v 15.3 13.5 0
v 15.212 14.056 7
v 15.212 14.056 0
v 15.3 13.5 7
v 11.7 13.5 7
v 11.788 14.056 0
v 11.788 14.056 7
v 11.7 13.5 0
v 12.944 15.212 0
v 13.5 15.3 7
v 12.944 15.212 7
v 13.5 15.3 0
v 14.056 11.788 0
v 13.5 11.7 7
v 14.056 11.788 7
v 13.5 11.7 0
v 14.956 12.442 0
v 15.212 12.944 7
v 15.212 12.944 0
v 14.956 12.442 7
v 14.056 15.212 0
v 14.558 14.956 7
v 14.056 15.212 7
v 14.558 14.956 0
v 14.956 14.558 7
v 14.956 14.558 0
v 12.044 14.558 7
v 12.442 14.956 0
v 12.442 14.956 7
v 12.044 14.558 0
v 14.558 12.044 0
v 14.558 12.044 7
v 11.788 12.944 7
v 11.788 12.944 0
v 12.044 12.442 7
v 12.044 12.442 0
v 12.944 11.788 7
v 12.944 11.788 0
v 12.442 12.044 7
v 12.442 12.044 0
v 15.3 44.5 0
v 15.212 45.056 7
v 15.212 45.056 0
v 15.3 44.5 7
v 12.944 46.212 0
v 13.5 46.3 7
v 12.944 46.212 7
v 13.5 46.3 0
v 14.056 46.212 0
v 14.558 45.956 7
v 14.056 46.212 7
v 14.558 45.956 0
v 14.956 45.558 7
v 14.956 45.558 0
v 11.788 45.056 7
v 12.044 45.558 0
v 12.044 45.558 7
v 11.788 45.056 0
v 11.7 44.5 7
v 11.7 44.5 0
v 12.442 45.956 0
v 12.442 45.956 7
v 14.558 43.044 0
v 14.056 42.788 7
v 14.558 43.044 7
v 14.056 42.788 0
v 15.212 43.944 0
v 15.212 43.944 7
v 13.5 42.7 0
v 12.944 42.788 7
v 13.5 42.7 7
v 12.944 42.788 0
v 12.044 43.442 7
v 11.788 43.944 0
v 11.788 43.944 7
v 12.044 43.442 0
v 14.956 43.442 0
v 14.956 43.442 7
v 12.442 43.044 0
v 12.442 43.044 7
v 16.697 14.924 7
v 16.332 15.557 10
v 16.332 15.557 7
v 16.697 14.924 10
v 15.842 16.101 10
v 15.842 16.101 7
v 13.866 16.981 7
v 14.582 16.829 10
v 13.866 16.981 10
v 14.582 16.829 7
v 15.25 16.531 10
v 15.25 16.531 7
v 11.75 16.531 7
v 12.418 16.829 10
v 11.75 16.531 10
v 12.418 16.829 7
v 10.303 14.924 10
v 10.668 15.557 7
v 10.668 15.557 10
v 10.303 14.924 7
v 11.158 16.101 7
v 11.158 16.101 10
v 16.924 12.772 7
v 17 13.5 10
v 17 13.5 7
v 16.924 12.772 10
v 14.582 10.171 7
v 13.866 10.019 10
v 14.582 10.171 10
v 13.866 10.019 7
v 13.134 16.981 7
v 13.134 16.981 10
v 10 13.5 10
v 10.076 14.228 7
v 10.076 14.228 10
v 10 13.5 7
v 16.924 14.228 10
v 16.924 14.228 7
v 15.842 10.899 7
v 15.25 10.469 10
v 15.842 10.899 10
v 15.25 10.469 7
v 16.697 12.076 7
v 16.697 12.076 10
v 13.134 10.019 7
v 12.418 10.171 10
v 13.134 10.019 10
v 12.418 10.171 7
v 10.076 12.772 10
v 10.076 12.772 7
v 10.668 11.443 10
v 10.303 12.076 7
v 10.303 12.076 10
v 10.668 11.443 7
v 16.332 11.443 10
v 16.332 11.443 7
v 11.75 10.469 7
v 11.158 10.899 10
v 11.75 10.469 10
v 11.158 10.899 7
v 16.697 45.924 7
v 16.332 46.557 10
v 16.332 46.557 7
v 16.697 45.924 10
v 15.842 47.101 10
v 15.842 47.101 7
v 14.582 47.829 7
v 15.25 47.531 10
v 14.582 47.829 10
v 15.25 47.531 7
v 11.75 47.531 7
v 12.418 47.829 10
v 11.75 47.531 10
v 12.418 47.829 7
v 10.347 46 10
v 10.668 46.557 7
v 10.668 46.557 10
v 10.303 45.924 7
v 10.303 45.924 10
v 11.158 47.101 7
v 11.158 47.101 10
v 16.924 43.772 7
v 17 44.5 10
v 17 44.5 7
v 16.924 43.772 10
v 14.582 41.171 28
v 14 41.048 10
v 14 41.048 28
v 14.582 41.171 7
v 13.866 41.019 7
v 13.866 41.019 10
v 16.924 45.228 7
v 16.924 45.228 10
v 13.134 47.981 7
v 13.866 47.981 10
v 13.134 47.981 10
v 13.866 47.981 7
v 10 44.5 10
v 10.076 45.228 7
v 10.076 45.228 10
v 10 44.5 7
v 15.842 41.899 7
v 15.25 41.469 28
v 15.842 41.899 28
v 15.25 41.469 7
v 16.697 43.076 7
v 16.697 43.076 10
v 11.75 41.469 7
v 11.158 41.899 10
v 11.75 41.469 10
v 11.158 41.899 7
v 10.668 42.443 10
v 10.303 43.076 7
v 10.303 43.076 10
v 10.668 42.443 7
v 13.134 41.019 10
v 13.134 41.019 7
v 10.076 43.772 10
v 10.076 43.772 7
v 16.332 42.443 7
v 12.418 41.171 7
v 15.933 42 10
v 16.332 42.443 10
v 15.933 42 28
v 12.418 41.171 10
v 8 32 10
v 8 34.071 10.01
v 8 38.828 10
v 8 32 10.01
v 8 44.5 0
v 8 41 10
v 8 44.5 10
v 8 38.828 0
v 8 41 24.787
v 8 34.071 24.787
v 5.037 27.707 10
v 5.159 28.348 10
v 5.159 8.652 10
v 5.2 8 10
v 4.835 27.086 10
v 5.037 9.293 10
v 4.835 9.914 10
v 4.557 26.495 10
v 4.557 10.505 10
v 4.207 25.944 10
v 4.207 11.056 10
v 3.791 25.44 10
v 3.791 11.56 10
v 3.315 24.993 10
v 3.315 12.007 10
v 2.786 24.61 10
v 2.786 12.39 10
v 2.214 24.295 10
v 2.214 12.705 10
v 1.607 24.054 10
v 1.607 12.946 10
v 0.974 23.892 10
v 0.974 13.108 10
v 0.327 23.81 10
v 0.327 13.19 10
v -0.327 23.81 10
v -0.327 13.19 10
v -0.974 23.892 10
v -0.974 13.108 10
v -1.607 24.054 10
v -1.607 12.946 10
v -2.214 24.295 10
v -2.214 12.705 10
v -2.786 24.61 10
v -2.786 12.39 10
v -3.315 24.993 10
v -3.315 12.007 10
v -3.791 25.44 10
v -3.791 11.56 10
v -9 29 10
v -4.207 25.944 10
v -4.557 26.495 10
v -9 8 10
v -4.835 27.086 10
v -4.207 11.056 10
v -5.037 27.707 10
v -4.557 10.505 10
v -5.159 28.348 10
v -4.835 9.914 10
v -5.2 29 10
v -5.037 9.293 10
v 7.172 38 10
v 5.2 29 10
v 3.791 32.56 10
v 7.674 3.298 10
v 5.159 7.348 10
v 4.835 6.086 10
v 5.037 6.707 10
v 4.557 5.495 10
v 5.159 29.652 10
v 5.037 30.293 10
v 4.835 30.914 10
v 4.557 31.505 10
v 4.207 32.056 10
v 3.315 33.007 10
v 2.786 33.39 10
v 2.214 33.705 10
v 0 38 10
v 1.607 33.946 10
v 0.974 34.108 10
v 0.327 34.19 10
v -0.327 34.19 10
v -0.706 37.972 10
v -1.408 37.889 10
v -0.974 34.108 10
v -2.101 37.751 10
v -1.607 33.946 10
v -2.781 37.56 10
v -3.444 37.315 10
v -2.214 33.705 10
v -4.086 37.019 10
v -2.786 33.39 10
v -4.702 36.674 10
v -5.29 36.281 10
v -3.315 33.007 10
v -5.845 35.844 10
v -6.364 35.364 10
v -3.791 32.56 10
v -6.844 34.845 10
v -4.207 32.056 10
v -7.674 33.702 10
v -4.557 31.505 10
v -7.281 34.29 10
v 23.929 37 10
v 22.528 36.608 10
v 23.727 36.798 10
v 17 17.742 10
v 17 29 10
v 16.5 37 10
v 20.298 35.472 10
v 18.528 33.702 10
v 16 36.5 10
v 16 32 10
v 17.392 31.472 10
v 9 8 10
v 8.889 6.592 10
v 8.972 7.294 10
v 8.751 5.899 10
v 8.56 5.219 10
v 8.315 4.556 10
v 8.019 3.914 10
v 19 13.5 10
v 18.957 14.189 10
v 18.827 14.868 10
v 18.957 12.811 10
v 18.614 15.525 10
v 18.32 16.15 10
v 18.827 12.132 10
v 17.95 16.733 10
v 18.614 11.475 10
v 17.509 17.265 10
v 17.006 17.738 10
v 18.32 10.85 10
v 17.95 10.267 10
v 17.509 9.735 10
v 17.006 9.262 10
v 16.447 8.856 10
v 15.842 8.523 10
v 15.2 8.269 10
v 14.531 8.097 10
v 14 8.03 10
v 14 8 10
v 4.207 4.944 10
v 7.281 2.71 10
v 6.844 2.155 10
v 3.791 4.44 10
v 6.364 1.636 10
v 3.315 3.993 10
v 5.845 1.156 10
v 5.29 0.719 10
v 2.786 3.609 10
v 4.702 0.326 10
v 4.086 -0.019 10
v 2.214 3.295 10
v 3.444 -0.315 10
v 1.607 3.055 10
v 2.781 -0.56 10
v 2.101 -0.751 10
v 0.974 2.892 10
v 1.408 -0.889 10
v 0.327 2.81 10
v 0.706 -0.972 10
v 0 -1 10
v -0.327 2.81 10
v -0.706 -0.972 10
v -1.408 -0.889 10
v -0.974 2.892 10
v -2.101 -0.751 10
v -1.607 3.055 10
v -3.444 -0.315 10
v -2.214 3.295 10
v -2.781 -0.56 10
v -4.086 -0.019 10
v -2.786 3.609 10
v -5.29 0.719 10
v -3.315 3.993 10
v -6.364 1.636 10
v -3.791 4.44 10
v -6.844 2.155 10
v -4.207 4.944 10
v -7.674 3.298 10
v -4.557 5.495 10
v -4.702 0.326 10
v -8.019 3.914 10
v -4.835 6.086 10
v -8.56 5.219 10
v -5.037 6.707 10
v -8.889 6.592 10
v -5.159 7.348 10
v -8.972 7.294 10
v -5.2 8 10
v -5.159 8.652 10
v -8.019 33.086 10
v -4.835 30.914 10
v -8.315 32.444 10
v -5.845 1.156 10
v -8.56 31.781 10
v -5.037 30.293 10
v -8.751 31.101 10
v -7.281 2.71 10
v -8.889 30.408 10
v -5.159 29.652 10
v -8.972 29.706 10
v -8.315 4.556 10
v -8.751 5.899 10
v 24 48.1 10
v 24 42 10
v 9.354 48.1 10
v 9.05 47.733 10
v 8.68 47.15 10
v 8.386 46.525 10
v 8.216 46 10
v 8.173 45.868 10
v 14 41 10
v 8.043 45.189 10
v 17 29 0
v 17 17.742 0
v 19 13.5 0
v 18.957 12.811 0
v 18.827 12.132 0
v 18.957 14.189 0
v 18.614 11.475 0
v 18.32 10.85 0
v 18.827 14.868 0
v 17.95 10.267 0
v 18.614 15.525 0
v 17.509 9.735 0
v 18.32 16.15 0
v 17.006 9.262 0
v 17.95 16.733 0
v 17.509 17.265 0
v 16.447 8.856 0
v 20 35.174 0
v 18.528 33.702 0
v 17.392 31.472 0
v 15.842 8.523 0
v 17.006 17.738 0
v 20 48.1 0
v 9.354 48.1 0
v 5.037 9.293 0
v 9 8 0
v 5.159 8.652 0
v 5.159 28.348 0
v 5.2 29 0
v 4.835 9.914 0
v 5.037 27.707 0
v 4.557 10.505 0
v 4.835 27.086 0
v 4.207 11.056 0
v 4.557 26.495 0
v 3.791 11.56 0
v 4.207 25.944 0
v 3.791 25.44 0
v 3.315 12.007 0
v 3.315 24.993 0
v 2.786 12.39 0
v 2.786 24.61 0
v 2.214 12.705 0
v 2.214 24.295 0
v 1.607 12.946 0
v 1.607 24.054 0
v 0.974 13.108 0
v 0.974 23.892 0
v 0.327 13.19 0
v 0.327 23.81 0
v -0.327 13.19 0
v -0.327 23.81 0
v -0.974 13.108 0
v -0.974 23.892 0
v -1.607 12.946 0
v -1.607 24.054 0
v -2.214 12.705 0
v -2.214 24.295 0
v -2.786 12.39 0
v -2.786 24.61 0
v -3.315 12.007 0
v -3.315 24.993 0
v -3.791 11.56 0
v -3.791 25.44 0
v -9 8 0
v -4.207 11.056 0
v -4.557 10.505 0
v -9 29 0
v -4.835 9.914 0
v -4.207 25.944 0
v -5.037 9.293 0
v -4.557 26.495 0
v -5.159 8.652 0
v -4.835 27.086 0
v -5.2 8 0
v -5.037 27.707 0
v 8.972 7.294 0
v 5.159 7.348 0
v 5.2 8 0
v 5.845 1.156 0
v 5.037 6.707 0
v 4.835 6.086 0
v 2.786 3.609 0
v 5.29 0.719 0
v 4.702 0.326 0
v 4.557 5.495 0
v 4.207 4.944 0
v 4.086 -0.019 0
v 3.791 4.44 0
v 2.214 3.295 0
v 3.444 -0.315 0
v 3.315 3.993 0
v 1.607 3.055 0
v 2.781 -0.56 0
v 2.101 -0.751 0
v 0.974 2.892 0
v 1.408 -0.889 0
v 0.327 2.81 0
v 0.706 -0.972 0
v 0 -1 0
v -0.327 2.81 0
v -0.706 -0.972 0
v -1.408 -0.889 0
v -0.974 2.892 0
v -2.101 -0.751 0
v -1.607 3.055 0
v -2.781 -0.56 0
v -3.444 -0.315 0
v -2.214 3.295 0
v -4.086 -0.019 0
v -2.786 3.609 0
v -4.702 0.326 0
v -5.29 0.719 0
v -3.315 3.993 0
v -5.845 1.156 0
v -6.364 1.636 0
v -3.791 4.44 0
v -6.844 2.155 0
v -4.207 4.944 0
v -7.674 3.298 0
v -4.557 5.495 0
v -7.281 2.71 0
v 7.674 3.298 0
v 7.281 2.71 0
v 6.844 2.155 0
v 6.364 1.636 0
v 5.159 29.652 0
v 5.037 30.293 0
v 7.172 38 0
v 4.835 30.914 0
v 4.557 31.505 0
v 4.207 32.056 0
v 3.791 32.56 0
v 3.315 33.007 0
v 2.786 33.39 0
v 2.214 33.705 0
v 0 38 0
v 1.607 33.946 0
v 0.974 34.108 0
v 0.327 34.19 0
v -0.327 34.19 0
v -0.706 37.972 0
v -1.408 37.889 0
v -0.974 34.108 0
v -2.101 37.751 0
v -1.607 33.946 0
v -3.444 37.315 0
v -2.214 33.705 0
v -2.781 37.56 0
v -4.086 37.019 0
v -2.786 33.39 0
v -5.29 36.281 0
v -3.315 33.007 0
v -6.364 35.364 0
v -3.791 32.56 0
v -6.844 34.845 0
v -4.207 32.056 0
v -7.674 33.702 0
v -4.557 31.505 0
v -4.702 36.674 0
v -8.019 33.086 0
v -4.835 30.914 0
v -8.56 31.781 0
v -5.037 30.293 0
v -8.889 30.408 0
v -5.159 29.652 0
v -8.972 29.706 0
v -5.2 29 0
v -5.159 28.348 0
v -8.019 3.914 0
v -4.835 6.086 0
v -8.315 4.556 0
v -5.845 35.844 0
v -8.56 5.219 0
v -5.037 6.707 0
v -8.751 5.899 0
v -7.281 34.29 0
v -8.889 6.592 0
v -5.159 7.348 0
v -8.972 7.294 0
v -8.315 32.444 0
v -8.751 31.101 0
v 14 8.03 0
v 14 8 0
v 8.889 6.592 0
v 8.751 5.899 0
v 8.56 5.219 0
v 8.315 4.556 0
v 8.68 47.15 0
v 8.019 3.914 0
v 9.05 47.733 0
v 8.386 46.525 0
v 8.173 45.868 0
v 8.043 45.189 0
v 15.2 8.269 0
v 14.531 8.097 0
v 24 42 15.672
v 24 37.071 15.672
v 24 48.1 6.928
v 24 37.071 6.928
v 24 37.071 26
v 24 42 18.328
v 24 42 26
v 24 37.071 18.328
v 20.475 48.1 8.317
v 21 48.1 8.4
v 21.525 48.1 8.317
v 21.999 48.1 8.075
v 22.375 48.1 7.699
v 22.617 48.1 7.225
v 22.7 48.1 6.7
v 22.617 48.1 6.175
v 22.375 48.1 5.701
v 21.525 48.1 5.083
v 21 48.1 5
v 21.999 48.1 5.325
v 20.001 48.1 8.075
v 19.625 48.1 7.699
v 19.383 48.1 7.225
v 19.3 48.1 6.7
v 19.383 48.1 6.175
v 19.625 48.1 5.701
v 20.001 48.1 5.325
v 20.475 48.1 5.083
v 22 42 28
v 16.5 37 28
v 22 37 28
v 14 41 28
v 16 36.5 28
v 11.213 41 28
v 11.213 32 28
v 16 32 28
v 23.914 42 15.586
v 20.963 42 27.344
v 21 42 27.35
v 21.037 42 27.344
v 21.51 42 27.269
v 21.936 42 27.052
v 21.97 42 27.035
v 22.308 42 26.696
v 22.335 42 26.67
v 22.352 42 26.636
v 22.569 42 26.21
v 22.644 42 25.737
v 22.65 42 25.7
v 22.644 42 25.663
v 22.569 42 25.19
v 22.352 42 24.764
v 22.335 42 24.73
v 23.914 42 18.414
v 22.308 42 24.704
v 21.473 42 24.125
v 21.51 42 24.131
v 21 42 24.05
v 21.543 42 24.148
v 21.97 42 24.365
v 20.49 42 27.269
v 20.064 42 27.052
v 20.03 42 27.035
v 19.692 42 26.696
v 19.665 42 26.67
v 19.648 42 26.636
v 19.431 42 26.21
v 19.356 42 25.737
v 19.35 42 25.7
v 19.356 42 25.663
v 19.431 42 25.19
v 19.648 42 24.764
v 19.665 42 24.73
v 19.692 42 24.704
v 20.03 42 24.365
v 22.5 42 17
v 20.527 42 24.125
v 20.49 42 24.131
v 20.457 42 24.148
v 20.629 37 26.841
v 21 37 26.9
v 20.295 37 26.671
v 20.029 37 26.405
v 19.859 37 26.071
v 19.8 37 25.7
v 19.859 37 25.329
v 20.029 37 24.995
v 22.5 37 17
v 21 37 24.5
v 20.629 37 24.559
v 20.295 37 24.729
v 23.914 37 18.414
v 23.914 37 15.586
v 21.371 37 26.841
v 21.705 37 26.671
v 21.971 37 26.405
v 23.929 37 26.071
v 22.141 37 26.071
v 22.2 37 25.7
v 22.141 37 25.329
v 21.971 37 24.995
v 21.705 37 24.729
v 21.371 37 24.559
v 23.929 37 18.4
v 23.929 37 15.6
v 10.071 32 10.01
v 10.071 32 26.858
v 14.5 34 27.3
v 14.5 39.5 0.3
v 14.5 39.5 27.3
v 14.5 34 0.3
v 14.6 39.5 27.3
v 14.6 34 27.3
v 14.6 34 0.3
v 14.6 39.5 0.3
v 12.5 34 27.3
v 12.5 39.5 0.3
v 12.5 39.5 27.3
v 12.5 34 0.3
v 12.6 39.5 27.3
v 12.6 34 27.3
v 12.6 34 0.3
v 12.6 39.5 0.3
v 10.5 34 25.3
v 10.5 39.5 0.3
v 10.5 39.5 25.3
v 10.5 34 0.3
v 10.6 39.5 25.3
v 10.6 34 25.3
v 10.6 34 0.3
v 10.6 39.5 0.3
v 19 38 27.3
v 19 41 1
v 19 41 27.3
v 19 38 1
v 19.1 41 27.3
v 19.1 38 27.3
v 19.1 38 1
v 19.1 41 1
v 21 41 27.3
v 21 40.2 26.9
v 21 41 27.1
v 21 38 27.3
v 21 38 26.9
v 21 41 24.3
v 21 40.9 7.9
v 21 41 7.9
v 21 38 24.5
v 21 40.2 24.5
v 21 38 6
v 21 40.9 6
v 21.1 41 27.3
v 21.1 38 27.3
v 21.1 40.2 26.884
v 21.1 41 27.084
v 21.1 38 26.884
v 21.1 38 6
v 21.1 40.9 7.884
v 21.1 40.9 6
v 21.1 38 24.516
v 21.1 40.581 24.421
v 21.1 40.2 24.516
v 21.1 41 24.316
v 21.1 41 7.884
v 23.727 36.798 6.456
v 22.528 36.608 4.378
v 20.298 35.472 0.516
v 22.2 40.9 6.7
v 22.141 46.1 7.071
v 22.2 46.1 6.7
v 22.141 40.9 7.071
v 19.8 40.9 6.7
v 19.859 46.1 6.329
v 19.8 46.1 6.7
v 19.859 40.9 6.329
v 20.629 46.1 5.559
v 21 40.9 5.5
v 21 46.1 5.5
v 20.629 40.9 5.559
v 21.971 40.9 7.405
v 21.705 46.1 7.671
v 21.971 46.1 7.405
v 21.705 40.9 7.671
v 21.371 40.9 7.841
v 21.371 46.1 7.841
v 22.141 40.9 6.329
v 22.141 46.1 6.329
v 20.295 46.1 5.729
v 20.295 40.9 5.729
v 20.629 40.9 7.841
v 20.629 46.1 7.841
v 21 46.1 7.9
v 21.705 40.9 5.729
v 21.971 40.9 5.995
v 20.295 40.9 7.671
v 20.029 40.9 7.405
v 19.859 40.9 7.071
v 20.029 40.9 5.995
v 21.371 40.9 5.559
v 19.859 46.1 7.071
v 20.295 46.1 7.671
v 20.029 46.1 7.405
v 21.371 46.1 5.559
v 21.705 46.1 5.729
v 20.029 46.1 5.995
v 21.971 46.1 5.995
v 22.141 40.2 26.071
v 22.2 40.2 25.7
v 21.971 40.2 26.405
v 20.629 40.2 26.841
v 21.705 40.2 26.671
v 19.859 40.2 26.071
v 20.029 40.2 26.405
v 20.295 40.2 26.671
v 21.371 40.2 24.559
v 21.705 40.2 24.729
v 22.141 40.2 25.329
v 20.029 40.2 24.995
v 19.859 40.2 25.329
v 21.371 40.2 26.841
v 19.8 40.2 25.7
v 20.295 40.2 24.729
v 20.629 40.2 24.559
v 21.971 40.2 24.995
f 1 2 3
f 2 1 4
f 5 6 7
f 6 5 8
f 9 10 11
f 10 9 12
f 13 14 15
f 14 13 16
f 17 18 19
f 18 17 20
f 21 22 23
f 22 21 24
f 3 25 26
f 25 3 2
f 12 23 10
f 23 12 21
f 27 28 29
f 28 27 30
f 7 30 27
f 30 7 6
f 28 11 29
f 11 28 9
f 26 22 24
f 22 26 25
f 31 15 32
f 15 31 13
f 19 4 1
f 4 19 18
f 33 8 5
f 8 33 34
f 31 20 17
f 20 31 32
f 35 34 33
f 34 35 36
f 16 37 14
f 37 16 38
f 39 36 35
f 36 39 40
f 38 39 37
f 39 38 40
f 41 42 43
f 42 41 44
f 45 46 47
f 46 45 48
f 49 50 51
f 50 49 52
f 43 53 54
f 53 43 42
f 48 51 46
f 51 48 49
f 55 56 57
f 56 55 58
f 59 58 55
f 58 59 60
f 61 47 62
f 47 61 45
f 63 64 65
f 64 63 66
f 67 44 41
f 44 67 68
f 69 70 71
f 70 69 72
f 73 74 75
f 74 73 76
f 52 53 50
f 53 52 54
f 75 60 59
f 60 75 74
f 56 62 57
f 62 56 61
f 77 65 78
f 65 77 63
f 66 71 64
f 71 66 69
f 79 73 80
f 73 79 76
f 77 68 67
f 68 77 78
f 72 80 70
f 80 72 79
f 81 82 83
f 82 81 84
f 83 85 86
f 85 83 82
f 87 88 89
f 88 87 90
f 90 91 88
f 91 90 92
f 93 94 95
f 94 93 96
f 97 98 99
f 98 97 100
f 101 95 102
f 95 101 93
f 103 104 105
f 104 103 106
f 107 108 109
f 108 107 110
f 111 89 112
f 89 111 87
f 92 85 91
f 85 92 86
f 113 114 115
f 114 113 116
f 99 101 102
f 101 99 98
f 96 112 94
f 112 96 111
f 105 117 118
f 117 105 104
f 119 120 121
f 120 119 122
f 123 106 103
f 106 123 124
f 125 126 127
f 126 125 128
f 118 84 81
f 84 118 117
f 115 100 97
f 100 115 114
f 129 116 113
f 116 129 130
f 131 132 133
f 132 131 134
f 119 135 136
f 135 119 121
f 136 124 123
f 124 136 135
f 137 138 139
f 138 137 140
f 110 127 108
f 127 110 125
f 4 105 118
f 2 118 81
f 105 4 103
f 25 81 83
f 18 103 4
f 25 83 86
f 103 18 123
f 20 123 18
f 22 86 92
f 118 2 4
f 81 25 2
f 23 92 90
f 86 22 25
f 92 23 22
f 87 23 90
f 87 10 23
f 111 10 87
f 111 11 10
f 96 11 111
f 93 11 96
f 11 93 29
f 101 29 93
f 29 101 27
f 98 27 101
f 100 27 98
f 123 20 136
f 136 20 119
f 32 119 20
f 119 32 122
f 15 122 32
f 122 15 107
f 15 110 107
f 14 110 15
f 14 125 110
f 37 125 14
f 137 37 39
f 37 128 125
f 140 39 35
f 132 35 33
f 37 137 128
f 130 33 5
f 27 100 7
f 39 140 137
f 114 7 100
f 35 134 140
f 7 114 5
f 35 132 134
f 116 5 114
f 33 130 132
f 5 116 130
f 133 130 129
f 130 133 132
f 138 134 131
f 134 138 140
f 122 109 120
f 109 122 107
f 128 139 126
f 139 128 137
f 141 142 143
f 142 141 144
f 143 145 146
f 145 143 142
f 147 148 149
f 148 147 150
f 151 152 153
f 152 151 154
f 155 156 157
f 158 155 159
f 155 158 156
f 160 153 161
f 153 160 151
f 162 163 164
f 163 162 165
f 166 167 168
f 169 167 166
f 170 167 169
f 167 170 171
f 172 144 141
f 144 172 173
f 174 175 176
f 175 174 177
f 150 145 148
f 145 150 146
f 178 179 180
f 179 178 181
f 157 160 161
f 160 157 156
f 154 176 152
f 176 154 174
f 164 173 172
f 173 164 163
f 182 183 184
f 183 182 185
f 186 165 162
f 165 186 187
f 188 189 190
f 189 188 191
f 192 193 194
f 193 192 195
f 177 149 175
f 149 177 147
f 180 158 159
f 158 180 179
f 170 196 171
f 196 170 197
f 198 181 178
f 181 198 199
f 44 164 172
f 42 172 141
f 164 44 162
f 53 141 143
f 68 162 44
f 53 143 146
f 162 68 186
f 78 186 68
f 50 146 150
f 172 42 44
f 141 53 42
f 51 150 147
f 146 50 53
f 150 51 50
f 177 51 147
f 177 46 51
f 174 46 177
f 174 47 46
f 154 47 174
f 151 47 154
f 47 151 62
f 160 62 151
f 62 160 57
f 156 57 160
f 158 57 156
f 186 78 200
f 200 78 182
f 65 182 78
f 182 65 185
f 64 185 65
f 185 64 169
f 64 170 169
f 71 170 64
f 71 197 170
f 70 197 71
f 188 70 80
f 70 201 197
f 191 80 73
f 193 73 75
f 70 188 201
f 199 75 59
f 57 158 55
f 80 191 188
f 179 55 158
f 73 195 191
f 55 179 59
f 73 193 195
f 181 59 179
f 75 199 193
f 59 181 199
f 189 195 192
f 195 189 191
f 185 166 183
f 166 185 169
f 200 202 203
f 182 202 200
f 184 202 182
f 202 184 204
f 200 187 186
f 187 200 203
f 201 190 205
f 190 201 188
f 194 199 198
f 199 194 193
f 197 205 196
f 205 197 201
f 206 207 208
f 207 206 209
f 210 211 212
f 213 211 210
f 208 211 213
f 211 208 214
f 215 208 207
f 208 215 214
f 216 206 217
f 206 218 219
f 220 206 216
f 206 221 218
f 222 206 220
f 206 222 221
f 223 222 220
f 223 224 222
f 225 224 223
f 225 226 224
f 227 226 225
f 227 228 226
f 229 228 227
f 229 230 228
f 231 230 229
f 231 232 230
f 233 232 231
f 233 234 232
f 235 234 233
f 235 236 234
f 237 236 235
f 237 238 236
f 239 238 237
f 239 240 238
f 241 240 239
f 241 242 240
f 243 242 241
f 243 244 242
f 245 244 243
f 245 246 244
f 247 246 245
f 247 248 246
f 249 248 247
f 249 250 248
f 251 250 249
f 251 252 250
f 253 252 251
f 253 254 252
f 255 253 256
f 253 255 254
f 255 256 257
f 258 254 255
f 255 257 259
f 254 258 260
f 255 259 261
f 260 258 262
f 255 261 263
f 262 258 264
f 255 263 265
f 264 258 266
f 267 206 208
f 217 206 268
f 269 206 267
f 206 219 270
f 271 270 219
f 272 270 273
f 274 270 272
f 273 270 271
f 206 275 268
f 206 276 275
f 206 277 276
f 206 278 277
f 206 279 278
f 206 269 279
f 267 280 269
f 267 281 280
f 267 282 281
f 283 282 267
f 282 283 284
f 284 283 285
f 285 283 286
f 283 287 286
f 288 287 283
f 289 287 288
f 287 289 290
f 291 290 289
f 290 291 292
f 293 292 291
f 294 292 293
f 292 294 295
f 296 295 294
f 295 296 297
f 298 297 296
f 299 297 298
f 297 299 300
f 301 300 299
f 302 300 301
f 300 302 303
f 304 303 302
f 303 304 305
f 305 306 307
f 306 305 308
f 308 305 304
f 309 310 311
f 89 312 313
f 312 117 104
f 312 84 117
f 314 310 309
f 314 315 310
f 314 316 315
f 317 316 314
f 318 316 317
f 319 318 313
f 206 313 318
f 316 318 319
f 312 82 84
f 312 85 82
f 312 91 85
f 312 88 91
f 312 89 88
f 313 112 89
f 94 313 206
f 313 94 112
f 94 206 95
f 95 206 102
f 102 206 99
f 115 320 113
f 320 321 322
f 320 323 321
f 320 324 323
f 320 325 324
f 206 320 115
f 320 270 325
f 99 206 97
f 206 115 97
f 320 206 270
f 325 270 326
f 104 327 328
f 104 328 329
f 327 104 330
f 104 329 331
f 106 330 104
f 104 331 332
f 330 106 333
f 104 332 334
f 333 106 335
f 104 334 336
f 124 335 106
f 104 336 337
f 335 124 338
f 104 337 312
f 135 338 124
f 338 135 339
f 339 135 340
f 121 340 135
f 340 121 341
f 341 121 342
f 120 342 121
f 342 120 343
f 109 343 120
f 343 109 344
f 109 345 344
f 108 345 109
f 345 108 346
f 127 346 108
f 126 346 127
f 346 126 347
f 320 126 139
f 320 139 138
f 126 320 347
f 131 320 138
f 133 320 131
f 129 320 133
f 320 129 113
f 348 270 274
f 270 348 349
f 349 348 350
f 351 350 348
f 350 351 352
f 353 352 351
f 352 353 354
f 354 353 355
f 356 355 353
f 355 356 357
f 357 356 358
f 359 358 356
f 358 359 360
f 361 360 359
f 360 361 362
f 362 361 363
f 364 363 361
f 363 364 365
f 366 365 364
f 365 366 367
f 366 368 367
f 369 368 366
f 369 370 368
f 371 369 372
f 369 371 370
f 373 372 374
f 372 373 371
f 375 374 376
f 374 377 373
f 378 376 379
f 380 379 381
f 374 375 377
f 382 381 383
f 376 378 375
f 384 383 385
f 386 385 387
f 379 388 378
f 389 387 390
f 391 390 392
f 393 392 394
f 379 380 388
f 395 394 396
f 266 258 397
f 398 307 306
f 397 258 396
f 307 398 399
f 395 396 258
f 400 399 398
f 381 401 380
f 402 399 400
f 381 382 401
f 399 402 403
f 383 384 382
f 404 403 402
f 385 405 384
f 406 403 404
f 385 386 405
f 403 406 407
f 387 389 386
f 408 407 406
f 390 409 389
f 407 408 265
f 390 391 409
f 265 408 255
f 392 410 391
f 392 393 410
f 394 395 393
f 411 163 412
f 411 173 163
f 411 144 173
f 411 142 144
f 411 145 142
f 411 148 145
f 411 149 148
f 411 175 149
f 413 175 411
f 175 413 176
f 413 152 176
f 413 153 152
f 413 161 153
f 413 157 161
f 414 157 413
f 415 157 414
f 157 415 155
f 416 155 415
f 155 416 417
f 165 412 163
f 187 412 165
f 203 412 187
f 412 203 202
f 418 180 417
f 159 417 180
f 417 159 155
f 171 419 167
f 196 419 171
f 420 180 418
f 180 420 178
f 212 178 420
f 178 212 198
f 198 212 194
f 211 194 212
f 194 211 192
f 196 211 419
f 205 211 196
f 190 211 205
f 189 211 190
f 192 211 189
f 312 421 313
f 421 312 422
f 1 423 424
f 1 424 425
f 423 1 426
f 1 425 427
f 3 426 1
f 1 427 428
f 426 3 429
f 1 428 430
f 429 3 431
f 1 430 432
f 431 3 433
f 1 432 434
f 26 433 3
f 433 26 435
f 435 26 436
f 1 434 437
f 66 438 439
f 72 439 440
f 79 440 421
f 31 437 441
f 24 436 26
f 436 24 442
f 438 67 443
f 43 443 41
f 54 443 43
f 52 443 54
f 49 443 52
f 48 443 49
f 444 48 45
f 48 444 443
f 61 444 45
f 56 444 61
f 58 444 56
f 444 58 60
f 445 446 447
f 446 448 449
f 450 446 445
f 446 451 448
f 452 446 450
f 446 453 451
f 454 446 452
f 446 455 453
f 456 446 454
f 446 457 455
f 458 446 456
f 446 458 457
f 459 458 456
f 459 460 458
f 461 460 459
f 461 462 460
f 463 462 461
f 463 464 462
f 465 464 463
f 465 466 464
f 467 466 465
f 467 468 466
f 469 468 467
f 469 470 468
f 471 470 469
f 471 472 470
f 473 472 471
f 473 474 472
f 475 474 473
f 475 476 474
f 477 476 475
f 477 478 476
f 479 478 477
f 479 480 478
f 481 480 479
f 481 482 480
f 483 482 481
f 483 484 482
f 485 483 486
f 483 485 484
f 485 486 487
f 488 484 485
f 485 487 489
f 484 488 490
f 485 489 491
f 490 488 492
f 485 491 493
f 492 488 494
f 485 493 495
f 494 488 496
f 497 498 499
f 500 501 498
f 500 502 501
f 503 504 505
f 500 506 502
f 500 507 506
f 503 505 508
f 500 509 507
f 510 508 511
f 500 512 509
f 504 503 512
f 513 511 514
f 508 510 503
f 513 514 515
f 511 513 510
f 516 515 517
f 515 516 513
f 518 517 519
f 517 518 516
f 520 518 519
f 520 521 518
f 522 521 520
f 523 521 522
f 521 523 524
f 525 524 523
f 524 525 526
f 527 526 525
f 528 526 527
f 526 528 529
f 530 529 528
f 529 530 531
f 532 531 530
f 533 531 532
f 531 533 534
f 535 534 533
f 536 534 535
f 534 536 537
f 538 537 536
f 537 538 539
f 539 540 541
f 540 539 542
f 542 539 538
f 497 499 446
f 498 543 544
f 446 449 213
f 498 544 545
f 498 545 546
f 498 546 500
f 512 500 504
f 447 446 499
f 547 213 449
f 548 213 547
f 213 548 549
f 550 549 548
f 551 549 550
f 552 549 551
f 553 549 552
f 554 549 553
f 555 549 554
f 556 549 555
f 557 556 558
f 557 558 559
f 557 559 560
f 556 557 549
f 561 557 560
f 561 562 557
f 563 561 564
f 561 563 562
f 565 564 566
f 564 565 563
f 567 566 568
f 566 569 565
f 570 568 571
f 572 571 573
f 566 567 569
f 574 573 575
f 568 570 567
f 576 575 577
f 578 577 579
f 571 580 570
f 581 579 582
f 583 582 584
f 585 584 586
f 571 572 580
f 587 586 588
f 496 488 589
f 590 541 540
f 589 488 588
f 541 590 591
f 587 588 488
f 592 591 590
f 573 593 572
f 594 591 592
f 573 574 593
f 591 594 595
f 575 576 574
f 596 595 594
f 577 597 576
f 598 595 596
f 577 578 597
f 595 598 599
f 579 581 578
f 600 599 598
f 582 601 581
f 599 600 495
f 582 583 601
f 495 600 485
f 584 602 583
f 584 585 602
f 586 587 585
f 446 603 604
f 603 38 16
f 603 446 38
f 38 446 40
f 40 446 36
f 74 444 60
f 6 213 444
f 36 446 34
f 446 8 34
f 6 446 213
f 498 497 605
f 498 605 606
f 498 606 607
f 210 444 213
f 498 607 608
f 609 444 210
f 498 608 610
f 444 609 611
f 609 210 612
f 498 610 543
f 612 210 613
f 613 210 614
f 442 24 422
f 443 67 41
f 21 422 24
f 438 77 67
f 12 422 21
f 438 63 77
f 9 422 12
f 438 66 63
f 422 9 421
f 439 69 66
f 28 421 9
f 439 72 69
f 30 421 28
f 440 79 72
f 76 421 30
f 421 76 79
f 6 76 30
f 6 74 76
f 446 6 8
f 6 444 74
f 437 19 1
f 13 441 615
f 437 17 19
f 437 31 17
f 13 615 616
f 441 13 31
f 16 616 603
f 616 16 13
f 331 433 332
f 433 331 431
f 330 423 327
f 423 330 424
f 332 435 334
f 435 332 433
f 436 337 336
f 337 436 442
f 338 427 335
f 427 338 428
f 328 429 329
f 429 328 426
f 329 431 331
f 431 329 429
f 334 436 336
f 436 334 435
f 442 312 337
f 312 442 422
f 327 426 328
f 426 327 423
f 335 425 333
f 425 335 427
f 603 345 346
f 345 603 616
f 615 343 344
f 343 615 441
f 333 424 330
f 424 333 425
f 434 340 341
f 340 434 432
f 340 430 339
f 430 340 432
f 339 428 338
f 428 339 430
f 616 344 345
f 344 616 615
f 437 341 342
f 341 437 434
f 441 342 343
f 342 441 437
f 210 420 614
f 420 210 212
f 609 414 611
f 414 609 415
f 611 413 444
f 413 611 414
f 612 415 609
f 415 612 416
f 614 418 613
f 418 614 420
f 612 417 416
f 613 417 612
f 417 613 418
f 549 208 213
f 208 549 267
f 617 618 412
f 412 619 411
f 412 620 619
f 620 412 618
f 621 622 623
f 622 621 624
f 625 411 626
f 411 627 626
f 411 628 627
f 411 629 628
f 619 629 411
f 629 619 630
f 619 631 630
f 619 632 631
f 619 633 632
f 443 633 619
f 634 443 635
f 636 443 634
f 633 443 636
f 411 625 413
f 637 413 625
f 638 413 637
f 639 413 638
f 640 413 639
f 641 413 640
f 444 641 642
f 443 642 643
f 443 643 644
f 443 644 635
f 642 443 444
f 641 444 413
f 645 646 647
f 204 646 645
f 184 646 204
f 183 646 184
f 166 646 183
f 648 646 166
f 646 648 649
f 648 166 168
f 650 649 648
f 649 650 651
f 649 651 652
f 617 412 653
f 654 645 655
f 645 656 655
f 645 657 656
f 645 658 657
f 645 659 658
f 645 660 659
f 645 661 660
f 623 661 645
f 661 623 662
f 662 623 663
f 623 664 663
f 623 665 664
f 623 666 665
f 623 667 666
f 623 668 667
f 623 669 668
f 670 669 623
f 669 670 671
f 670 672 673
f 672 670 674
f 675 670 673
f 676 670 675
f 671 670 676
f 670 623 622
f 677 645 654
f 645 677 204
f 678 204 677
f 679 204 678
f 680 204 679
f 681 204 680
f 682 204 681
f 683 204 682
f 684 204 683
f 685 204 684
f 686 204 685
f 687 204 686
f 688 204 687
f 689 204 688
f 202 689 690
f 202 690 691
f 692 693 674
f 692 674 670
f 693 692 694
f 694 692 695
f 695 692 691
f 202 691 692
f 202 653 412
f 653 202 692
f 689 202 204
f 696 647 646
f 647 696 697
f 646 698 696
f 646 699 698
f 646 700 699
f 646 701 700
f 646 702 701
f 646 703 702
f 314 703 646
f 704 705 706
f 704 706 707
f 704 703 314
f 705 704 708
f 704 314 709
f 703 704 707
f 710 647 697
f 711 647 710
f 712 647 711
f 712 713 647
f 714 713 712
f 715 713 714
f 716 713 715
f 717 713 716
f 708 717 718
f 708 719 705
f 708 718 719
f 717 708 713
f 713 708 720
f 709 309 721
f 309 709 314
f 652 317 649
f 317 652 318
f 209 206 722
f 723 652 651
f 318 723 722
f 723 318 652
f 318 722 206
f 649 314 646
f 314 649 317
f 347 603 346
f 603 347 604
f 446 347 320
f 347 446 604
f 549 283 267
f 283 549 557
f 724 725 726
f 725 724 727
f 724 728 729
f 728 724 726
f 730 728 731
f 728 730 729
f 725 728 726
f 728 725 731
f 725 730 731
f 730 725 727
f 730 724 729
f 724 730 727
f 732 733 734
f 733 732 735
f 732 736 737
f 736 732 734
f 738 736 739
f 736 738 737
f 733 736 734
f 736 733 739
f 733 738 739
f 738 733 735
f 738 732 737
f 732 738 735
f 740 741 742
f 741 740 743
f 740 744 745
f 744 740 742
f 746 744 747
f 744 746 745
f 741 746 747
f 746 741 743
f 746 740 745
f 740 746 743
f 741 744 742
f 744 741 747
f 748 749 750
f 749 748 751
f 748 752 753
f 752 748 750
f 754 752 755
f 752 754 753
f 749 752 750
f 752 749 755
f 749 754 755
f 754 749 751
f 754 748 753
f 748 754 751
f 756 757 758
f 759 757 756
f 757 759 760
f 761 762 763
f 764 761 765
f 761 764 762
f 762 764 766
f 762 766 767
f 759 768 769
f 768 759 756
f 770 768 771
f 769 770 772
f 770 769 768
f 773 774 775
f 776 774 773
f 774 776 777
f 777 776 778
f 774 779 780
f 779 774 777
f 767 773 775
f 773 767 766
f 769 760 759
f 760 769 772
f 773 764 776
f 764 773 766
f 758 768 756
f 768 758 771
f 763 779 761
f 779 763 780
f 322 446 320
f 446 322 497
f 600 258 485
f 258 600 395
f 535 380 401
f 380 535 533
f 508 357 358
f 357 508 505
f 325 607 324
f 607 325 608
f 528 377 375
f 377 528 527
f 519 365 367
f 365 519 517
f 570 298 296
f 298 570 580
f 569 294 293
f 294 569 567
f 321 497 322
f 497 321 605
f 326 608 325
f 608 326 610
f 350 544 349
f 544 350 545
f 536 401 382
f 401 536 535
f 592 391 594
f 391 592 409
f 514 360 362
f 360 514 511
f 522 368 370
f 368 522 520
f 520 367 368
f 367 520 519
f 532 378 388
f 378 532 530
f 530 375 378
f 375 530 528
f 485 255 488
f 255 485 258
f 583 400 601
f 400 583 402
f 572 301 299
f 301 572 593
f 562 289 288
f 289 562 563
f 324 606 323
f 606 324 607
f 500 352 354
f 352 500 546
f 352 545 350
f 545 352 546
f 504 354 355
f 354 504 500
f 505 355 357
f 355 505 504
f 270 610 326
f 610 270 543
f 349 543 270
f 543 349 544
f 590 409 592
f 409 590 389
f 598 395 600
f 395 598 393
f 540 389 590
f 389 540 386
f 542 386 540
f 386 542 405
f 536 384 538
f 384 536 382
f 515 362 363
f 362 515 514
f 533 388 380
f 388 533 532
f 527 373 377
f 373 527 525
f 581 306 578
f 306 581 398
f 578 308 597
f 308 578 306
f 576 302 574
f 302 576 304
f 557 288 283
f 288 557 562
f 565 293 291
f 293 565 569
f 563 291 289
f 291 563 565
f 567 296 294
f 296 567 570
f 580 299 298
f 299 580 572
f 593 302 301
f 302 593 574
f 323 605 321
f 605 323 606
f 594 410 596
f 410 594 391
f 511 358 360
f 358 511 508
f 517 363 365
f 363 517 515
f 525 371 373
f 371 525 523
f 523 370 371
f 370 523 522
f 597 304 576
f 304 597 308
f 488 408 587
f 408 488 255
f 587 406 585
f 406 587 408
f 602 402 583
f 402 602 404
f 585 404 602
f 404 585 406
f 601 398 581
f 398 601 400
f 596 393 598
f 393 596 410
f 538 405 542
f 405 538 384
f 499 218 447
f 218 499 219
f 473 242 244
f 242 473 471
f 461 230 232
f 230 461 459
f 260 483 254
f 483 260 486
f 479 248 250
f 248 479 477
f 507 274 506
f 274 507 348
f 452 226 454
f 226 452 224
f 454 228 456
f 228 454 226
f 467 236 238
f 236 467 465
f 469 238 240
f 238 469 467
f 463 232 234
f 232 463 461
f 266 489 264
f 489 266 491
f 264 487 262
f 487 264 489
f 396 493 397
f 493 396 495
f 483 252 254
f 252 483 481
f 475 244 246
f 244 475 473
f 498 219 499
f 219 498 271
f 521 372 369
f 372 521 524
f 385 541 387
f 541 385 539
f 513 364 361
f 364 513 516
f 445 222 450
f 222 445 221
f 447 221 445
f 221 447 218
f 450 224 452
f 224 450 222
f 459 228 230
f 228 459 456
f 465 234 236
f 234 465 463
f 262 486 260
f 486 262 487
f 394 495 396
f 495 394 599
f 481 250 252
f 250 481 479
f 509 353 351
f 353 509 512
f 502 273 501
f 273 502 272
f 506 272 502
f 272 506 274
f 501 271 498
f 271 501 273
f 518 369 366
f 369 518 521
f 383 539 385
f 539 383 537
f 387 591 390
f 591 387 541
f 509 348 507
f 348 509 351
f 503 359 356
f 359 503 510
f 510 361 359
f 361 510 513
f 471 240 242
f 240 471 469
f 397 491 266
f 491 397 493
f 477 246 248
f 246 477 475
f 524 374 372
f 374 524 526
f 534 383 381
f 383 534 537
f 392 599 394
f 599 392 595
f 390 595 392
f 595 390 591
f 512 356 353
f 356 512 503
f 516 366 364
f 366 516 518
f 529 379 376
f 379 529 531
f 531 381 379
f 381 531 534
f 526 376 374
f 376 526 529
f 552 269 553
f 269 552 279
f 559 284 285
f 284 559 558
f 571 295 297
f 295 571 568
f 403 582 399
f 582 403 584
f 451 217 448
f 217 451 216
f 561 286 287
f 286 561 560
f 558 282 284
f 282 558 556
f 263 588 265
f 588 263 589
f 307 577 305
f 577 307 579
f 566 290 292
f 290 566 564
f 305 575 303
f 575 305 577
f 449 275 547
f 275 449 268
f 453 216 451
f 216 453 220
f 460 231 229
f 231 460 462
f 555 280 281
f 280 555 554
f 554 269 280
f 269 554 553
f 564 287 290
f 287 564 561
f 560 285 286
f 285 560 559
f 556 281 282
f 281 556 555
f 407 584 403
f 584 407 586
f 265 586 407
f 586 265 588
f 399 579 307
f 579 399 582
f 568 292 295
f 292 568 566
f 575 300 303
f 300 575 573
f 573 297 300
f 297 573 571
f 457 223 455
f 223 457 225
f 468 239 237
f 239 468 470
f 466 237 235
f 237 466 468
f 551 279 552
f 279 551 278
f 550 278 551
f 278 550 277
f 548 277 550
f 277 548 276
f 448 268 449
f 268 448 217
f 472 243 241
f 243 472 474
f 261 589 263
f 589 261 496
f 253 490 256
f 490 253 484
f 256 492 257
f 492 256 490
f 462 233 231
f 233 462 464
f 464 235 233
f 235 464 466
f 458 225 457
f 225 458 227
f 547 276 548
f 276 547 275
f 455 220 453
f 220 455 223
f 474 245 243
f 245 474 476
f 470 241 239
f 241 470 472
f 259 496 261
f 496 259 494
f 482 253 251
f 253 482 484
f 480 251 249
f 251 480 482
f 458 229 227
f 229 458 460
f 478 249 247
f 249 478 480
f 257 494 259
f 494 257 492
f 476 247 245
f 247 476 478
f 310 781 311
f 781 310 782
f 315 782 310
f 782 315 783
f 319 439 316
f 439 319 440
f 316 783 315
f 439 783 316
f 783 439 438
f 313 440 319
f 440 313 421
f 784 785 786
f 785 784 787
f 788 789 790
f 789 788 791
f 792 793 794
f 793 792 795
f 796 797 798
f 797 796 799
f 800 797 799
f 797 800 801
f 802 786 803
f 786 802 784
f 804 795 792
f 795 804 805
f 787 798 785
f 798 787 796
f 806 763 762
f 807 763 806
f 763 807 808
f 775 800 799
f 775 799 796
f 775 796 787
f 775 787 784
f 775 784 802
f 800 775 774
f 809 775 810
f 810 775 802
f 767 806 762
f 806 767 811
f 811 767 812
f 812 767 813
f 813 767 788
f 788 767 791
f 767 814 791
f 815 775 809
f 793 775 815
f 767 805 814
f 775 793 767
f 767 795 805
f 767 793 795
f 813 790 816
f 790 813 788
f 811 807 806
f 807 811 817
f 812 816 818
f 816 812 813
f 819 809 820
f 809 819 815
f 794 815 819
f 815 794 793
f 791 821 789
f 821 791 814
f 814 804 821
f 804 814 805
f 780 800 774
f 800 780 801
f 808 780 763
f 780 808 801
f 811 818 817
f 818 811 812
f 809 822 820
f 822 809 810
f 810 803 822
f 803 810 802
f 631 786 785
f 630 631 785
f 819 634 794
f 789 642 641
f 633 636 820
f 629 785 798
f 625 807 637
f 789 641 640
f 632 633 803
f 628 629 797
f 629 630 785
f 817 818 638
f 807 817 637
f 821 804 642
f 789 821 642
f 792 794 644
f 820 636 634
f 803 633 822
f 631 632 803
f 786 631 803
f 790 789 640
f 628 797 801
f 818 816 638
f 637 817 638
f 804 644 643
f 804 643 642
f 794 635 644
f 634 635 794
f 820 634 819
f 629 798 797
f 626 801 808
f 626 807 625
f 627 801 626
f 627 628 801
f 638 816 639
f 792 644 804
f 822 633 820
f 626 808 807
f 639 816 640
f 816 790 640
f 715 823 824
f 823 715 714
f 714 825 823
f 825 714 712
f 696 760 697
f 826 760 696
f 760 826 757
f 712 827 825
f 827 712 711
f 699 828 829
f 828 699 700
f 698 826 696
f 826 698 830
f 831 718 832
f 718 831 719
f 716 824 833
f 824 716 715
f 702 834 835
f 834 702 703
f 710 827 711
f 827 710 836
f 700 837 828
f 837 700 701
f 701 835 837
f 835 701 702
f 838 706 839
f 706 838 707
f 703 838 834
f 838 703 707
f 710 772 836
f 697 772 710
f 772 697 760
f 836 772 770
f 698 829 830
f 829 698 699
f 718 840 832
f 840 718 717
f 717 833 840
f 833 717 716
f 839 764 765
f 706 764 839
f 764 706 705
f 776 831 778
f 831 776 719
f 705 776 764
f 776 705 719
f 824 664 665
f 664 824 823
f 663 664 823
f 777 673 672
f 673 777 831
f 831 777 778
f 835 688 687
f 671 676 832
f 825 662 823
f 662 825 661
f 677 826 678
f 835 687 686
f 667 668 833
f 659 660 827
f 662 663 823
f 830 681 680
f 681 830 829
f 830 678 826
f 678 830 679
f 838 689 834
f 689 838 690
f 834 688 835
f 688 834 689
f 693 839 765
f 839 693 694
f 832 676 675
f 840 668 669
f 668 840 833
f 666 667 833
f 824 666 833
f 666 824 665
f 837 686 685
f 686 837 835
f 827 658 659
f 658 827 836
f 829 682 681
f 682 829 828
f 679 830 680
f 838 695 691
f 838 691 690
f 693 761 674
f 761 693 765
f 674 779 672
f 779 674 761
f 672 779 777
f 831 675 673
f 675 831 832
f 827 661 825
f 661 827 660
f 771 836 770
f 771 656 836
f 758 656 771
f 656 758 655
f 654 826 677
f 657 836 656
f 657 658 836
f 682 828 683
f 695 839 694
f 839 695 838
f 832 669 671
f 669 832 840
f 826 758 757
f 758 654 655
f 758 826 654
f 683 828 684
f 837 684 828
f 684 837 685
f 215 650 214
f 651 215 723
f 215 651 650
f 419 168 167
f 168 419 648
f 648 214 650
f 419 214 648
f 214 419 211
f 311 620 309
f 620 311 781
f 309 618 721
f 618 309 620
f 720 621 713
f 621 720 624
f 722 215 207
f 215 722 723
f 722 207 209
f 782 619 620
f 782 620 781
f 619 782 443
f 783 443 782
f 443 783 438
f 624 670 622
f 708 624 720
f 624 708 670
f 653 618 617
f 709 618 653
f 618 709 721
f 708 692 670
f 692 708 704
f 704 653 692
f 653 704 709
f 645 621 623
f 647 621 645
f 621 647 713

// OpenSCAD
// PRUSA iteration3
// Y motor mount
// GNU GPL v3
// Josef Průša <iam@josefprusa.cz> and contributors
// http://www.reprap.org/wiki/Prusa_Mendel
// http://prusamendel.org

//include <configuration.scad>

module y_motor_base() {
  union() {
    // Motor holding part
    translate(v = [29,-21+50,0]) {
      difference() {
        union() {
          translate(v = [-21+4.5,0,5]) cube(size = [9,31,10], center=true);
          translate(v = [-15.5,-15.5,0]) cylinder(h = 10, r=5.5, $fn=50);
          translate(v = [-15.5,+15.5,0]) cylinder(h = 10, r=5.5, $fn=50);
          translate([-21,7,0]) rotate([0,0,45]) cube([2, 2, 10]);

          //end stop
          /* translate(v = [-10.5,+15.5,0]) cylinder(h = 12, r=5.5, $fn=50); */
          translate([-12,0,0]) cube([7, 15, 10]);
          translate([-16,15,0]) cube([11, 4.1, 10]); //top of endstop mount //here
          translate([-21+6,8,0]) cube([12-2, 5, 28]);
          translate([-21,8-5,0]) cube([8, 10, 28]);
          translate([-21+9.5-2,7,0]) rotate([0,0,45]) cube([2, 2, 28]);
          // Joins motor holder and rod plate
          translate(v = [-29,-21,0]) cube(size = [14,30,10]);
        }
          //selective infill
          translate([-14.5,5,0.3]) cube([0.1,5.5,27]);
          translate([-16.5,5,0.3]) cube([0.1,5.5,27]);
          translate([-18.5,5,0.3]) cube([0.1,5.5,25]);
          translate([-10,9,1]) cube([0.1,3,26.3]);
          translate([-8,9,6]) cube([0.1,3,21.3]);
      }
    }
  }
  // Front holding part
  hull() {
    translate(v = [0,8,0]) cylinder(h = 10, r=9, $fn=80);
    translate(v = [0,29,0]) cylinder(h = 10, r=9, $fn=80);
  }
}

module y_motor_holes() {
  translate(v = [29,-21+50,0]) {
    // Screw head holes
    translate(v = [-15.5,-15.5,-1]) cylinder(h = 10, r=1.8, $fn=20);
    translate(v = [-15.5,+15.5,-1]) cylinder(h = 10, r=1.8, $fn=20);
    // Screw holes
    translate(v = [-15.5,-15.5,7]) cylinder(h = 7, r=3.5, $fn=30);
    translate(v = [-15.5,+15.5,7]) cylinder(h = 25, r=3.5, $fn=30);
  }

  translate(v = [0,8,-1]) cylinder(h = 12, r=5.2, $fn=50);
  translate(v = [0,29,-1]) cylinder(h = 12, r=5.2, $fn=50);

  //endstop
  translate([25,29,0])  cylinder(h = 29, r=8, $fn=20);

  /* M3 core diameter~=2.4mm */
  /* hole distance from front edge=3.1 */
  fed = 3;
  side_dist = -3.3 + 10;
  height_difference = 5.9;
  translate([24-fed,45+height_difference,side_dist]) rotate([90,0,0]) cylinder(h = 10, r=1.2, $fn=20);
  translate([24-fed,42.2+height_difference,side_dist]) rotate([90,0,0]) cylinder(h = 2, r1=1.7, r2=1.2, $fn=20);

  /* center distance endstop holes=19mm */
  cdist = 19;
  translate([24-fed,45,side_dist+cdist]) rotate([90,0,0]) cylinder(h = 10, r=1.2, $fn=20);
  translate([24-fed,42.2,side_dist+cdist]) rotate([90,0,0]) cylinder(h = 2, r1=1.7, r2=1.2, $fn=20);
  /* side distance for first hole = 3.7 */

  // endstop corner cutout
  translate([-10,30,28]) rotate([0,45,0]) cube([15, 19, 15]);
  translate([-1,41,10])  cube([15, 5, 19]);
  translate([27,33,0]) rotate([0,0,45]) cube([5, 5, 28]);
  translate([7,28,10.01]) rotate([0,0,45]) cube([5, 5, 28]);

  translate([20,32,0]) rotate([0,30,0]) cube([8, 20, 18]);
  translate([24.5-2,32,17]) rotate([0,45,0]) cube([2, 20, 2]);

  translate([23-2,32,29]) rotate([0,45,0]) cube([5, 20, 5]);

  // cut off top of end-stop mount
  translate([0,48.1,0]) cube([100,100,100]);
}

// Final part
module y_motor() {
  difference() {
    y_motor_base();
    y_motor_holes();
  }
}

y_motor();
